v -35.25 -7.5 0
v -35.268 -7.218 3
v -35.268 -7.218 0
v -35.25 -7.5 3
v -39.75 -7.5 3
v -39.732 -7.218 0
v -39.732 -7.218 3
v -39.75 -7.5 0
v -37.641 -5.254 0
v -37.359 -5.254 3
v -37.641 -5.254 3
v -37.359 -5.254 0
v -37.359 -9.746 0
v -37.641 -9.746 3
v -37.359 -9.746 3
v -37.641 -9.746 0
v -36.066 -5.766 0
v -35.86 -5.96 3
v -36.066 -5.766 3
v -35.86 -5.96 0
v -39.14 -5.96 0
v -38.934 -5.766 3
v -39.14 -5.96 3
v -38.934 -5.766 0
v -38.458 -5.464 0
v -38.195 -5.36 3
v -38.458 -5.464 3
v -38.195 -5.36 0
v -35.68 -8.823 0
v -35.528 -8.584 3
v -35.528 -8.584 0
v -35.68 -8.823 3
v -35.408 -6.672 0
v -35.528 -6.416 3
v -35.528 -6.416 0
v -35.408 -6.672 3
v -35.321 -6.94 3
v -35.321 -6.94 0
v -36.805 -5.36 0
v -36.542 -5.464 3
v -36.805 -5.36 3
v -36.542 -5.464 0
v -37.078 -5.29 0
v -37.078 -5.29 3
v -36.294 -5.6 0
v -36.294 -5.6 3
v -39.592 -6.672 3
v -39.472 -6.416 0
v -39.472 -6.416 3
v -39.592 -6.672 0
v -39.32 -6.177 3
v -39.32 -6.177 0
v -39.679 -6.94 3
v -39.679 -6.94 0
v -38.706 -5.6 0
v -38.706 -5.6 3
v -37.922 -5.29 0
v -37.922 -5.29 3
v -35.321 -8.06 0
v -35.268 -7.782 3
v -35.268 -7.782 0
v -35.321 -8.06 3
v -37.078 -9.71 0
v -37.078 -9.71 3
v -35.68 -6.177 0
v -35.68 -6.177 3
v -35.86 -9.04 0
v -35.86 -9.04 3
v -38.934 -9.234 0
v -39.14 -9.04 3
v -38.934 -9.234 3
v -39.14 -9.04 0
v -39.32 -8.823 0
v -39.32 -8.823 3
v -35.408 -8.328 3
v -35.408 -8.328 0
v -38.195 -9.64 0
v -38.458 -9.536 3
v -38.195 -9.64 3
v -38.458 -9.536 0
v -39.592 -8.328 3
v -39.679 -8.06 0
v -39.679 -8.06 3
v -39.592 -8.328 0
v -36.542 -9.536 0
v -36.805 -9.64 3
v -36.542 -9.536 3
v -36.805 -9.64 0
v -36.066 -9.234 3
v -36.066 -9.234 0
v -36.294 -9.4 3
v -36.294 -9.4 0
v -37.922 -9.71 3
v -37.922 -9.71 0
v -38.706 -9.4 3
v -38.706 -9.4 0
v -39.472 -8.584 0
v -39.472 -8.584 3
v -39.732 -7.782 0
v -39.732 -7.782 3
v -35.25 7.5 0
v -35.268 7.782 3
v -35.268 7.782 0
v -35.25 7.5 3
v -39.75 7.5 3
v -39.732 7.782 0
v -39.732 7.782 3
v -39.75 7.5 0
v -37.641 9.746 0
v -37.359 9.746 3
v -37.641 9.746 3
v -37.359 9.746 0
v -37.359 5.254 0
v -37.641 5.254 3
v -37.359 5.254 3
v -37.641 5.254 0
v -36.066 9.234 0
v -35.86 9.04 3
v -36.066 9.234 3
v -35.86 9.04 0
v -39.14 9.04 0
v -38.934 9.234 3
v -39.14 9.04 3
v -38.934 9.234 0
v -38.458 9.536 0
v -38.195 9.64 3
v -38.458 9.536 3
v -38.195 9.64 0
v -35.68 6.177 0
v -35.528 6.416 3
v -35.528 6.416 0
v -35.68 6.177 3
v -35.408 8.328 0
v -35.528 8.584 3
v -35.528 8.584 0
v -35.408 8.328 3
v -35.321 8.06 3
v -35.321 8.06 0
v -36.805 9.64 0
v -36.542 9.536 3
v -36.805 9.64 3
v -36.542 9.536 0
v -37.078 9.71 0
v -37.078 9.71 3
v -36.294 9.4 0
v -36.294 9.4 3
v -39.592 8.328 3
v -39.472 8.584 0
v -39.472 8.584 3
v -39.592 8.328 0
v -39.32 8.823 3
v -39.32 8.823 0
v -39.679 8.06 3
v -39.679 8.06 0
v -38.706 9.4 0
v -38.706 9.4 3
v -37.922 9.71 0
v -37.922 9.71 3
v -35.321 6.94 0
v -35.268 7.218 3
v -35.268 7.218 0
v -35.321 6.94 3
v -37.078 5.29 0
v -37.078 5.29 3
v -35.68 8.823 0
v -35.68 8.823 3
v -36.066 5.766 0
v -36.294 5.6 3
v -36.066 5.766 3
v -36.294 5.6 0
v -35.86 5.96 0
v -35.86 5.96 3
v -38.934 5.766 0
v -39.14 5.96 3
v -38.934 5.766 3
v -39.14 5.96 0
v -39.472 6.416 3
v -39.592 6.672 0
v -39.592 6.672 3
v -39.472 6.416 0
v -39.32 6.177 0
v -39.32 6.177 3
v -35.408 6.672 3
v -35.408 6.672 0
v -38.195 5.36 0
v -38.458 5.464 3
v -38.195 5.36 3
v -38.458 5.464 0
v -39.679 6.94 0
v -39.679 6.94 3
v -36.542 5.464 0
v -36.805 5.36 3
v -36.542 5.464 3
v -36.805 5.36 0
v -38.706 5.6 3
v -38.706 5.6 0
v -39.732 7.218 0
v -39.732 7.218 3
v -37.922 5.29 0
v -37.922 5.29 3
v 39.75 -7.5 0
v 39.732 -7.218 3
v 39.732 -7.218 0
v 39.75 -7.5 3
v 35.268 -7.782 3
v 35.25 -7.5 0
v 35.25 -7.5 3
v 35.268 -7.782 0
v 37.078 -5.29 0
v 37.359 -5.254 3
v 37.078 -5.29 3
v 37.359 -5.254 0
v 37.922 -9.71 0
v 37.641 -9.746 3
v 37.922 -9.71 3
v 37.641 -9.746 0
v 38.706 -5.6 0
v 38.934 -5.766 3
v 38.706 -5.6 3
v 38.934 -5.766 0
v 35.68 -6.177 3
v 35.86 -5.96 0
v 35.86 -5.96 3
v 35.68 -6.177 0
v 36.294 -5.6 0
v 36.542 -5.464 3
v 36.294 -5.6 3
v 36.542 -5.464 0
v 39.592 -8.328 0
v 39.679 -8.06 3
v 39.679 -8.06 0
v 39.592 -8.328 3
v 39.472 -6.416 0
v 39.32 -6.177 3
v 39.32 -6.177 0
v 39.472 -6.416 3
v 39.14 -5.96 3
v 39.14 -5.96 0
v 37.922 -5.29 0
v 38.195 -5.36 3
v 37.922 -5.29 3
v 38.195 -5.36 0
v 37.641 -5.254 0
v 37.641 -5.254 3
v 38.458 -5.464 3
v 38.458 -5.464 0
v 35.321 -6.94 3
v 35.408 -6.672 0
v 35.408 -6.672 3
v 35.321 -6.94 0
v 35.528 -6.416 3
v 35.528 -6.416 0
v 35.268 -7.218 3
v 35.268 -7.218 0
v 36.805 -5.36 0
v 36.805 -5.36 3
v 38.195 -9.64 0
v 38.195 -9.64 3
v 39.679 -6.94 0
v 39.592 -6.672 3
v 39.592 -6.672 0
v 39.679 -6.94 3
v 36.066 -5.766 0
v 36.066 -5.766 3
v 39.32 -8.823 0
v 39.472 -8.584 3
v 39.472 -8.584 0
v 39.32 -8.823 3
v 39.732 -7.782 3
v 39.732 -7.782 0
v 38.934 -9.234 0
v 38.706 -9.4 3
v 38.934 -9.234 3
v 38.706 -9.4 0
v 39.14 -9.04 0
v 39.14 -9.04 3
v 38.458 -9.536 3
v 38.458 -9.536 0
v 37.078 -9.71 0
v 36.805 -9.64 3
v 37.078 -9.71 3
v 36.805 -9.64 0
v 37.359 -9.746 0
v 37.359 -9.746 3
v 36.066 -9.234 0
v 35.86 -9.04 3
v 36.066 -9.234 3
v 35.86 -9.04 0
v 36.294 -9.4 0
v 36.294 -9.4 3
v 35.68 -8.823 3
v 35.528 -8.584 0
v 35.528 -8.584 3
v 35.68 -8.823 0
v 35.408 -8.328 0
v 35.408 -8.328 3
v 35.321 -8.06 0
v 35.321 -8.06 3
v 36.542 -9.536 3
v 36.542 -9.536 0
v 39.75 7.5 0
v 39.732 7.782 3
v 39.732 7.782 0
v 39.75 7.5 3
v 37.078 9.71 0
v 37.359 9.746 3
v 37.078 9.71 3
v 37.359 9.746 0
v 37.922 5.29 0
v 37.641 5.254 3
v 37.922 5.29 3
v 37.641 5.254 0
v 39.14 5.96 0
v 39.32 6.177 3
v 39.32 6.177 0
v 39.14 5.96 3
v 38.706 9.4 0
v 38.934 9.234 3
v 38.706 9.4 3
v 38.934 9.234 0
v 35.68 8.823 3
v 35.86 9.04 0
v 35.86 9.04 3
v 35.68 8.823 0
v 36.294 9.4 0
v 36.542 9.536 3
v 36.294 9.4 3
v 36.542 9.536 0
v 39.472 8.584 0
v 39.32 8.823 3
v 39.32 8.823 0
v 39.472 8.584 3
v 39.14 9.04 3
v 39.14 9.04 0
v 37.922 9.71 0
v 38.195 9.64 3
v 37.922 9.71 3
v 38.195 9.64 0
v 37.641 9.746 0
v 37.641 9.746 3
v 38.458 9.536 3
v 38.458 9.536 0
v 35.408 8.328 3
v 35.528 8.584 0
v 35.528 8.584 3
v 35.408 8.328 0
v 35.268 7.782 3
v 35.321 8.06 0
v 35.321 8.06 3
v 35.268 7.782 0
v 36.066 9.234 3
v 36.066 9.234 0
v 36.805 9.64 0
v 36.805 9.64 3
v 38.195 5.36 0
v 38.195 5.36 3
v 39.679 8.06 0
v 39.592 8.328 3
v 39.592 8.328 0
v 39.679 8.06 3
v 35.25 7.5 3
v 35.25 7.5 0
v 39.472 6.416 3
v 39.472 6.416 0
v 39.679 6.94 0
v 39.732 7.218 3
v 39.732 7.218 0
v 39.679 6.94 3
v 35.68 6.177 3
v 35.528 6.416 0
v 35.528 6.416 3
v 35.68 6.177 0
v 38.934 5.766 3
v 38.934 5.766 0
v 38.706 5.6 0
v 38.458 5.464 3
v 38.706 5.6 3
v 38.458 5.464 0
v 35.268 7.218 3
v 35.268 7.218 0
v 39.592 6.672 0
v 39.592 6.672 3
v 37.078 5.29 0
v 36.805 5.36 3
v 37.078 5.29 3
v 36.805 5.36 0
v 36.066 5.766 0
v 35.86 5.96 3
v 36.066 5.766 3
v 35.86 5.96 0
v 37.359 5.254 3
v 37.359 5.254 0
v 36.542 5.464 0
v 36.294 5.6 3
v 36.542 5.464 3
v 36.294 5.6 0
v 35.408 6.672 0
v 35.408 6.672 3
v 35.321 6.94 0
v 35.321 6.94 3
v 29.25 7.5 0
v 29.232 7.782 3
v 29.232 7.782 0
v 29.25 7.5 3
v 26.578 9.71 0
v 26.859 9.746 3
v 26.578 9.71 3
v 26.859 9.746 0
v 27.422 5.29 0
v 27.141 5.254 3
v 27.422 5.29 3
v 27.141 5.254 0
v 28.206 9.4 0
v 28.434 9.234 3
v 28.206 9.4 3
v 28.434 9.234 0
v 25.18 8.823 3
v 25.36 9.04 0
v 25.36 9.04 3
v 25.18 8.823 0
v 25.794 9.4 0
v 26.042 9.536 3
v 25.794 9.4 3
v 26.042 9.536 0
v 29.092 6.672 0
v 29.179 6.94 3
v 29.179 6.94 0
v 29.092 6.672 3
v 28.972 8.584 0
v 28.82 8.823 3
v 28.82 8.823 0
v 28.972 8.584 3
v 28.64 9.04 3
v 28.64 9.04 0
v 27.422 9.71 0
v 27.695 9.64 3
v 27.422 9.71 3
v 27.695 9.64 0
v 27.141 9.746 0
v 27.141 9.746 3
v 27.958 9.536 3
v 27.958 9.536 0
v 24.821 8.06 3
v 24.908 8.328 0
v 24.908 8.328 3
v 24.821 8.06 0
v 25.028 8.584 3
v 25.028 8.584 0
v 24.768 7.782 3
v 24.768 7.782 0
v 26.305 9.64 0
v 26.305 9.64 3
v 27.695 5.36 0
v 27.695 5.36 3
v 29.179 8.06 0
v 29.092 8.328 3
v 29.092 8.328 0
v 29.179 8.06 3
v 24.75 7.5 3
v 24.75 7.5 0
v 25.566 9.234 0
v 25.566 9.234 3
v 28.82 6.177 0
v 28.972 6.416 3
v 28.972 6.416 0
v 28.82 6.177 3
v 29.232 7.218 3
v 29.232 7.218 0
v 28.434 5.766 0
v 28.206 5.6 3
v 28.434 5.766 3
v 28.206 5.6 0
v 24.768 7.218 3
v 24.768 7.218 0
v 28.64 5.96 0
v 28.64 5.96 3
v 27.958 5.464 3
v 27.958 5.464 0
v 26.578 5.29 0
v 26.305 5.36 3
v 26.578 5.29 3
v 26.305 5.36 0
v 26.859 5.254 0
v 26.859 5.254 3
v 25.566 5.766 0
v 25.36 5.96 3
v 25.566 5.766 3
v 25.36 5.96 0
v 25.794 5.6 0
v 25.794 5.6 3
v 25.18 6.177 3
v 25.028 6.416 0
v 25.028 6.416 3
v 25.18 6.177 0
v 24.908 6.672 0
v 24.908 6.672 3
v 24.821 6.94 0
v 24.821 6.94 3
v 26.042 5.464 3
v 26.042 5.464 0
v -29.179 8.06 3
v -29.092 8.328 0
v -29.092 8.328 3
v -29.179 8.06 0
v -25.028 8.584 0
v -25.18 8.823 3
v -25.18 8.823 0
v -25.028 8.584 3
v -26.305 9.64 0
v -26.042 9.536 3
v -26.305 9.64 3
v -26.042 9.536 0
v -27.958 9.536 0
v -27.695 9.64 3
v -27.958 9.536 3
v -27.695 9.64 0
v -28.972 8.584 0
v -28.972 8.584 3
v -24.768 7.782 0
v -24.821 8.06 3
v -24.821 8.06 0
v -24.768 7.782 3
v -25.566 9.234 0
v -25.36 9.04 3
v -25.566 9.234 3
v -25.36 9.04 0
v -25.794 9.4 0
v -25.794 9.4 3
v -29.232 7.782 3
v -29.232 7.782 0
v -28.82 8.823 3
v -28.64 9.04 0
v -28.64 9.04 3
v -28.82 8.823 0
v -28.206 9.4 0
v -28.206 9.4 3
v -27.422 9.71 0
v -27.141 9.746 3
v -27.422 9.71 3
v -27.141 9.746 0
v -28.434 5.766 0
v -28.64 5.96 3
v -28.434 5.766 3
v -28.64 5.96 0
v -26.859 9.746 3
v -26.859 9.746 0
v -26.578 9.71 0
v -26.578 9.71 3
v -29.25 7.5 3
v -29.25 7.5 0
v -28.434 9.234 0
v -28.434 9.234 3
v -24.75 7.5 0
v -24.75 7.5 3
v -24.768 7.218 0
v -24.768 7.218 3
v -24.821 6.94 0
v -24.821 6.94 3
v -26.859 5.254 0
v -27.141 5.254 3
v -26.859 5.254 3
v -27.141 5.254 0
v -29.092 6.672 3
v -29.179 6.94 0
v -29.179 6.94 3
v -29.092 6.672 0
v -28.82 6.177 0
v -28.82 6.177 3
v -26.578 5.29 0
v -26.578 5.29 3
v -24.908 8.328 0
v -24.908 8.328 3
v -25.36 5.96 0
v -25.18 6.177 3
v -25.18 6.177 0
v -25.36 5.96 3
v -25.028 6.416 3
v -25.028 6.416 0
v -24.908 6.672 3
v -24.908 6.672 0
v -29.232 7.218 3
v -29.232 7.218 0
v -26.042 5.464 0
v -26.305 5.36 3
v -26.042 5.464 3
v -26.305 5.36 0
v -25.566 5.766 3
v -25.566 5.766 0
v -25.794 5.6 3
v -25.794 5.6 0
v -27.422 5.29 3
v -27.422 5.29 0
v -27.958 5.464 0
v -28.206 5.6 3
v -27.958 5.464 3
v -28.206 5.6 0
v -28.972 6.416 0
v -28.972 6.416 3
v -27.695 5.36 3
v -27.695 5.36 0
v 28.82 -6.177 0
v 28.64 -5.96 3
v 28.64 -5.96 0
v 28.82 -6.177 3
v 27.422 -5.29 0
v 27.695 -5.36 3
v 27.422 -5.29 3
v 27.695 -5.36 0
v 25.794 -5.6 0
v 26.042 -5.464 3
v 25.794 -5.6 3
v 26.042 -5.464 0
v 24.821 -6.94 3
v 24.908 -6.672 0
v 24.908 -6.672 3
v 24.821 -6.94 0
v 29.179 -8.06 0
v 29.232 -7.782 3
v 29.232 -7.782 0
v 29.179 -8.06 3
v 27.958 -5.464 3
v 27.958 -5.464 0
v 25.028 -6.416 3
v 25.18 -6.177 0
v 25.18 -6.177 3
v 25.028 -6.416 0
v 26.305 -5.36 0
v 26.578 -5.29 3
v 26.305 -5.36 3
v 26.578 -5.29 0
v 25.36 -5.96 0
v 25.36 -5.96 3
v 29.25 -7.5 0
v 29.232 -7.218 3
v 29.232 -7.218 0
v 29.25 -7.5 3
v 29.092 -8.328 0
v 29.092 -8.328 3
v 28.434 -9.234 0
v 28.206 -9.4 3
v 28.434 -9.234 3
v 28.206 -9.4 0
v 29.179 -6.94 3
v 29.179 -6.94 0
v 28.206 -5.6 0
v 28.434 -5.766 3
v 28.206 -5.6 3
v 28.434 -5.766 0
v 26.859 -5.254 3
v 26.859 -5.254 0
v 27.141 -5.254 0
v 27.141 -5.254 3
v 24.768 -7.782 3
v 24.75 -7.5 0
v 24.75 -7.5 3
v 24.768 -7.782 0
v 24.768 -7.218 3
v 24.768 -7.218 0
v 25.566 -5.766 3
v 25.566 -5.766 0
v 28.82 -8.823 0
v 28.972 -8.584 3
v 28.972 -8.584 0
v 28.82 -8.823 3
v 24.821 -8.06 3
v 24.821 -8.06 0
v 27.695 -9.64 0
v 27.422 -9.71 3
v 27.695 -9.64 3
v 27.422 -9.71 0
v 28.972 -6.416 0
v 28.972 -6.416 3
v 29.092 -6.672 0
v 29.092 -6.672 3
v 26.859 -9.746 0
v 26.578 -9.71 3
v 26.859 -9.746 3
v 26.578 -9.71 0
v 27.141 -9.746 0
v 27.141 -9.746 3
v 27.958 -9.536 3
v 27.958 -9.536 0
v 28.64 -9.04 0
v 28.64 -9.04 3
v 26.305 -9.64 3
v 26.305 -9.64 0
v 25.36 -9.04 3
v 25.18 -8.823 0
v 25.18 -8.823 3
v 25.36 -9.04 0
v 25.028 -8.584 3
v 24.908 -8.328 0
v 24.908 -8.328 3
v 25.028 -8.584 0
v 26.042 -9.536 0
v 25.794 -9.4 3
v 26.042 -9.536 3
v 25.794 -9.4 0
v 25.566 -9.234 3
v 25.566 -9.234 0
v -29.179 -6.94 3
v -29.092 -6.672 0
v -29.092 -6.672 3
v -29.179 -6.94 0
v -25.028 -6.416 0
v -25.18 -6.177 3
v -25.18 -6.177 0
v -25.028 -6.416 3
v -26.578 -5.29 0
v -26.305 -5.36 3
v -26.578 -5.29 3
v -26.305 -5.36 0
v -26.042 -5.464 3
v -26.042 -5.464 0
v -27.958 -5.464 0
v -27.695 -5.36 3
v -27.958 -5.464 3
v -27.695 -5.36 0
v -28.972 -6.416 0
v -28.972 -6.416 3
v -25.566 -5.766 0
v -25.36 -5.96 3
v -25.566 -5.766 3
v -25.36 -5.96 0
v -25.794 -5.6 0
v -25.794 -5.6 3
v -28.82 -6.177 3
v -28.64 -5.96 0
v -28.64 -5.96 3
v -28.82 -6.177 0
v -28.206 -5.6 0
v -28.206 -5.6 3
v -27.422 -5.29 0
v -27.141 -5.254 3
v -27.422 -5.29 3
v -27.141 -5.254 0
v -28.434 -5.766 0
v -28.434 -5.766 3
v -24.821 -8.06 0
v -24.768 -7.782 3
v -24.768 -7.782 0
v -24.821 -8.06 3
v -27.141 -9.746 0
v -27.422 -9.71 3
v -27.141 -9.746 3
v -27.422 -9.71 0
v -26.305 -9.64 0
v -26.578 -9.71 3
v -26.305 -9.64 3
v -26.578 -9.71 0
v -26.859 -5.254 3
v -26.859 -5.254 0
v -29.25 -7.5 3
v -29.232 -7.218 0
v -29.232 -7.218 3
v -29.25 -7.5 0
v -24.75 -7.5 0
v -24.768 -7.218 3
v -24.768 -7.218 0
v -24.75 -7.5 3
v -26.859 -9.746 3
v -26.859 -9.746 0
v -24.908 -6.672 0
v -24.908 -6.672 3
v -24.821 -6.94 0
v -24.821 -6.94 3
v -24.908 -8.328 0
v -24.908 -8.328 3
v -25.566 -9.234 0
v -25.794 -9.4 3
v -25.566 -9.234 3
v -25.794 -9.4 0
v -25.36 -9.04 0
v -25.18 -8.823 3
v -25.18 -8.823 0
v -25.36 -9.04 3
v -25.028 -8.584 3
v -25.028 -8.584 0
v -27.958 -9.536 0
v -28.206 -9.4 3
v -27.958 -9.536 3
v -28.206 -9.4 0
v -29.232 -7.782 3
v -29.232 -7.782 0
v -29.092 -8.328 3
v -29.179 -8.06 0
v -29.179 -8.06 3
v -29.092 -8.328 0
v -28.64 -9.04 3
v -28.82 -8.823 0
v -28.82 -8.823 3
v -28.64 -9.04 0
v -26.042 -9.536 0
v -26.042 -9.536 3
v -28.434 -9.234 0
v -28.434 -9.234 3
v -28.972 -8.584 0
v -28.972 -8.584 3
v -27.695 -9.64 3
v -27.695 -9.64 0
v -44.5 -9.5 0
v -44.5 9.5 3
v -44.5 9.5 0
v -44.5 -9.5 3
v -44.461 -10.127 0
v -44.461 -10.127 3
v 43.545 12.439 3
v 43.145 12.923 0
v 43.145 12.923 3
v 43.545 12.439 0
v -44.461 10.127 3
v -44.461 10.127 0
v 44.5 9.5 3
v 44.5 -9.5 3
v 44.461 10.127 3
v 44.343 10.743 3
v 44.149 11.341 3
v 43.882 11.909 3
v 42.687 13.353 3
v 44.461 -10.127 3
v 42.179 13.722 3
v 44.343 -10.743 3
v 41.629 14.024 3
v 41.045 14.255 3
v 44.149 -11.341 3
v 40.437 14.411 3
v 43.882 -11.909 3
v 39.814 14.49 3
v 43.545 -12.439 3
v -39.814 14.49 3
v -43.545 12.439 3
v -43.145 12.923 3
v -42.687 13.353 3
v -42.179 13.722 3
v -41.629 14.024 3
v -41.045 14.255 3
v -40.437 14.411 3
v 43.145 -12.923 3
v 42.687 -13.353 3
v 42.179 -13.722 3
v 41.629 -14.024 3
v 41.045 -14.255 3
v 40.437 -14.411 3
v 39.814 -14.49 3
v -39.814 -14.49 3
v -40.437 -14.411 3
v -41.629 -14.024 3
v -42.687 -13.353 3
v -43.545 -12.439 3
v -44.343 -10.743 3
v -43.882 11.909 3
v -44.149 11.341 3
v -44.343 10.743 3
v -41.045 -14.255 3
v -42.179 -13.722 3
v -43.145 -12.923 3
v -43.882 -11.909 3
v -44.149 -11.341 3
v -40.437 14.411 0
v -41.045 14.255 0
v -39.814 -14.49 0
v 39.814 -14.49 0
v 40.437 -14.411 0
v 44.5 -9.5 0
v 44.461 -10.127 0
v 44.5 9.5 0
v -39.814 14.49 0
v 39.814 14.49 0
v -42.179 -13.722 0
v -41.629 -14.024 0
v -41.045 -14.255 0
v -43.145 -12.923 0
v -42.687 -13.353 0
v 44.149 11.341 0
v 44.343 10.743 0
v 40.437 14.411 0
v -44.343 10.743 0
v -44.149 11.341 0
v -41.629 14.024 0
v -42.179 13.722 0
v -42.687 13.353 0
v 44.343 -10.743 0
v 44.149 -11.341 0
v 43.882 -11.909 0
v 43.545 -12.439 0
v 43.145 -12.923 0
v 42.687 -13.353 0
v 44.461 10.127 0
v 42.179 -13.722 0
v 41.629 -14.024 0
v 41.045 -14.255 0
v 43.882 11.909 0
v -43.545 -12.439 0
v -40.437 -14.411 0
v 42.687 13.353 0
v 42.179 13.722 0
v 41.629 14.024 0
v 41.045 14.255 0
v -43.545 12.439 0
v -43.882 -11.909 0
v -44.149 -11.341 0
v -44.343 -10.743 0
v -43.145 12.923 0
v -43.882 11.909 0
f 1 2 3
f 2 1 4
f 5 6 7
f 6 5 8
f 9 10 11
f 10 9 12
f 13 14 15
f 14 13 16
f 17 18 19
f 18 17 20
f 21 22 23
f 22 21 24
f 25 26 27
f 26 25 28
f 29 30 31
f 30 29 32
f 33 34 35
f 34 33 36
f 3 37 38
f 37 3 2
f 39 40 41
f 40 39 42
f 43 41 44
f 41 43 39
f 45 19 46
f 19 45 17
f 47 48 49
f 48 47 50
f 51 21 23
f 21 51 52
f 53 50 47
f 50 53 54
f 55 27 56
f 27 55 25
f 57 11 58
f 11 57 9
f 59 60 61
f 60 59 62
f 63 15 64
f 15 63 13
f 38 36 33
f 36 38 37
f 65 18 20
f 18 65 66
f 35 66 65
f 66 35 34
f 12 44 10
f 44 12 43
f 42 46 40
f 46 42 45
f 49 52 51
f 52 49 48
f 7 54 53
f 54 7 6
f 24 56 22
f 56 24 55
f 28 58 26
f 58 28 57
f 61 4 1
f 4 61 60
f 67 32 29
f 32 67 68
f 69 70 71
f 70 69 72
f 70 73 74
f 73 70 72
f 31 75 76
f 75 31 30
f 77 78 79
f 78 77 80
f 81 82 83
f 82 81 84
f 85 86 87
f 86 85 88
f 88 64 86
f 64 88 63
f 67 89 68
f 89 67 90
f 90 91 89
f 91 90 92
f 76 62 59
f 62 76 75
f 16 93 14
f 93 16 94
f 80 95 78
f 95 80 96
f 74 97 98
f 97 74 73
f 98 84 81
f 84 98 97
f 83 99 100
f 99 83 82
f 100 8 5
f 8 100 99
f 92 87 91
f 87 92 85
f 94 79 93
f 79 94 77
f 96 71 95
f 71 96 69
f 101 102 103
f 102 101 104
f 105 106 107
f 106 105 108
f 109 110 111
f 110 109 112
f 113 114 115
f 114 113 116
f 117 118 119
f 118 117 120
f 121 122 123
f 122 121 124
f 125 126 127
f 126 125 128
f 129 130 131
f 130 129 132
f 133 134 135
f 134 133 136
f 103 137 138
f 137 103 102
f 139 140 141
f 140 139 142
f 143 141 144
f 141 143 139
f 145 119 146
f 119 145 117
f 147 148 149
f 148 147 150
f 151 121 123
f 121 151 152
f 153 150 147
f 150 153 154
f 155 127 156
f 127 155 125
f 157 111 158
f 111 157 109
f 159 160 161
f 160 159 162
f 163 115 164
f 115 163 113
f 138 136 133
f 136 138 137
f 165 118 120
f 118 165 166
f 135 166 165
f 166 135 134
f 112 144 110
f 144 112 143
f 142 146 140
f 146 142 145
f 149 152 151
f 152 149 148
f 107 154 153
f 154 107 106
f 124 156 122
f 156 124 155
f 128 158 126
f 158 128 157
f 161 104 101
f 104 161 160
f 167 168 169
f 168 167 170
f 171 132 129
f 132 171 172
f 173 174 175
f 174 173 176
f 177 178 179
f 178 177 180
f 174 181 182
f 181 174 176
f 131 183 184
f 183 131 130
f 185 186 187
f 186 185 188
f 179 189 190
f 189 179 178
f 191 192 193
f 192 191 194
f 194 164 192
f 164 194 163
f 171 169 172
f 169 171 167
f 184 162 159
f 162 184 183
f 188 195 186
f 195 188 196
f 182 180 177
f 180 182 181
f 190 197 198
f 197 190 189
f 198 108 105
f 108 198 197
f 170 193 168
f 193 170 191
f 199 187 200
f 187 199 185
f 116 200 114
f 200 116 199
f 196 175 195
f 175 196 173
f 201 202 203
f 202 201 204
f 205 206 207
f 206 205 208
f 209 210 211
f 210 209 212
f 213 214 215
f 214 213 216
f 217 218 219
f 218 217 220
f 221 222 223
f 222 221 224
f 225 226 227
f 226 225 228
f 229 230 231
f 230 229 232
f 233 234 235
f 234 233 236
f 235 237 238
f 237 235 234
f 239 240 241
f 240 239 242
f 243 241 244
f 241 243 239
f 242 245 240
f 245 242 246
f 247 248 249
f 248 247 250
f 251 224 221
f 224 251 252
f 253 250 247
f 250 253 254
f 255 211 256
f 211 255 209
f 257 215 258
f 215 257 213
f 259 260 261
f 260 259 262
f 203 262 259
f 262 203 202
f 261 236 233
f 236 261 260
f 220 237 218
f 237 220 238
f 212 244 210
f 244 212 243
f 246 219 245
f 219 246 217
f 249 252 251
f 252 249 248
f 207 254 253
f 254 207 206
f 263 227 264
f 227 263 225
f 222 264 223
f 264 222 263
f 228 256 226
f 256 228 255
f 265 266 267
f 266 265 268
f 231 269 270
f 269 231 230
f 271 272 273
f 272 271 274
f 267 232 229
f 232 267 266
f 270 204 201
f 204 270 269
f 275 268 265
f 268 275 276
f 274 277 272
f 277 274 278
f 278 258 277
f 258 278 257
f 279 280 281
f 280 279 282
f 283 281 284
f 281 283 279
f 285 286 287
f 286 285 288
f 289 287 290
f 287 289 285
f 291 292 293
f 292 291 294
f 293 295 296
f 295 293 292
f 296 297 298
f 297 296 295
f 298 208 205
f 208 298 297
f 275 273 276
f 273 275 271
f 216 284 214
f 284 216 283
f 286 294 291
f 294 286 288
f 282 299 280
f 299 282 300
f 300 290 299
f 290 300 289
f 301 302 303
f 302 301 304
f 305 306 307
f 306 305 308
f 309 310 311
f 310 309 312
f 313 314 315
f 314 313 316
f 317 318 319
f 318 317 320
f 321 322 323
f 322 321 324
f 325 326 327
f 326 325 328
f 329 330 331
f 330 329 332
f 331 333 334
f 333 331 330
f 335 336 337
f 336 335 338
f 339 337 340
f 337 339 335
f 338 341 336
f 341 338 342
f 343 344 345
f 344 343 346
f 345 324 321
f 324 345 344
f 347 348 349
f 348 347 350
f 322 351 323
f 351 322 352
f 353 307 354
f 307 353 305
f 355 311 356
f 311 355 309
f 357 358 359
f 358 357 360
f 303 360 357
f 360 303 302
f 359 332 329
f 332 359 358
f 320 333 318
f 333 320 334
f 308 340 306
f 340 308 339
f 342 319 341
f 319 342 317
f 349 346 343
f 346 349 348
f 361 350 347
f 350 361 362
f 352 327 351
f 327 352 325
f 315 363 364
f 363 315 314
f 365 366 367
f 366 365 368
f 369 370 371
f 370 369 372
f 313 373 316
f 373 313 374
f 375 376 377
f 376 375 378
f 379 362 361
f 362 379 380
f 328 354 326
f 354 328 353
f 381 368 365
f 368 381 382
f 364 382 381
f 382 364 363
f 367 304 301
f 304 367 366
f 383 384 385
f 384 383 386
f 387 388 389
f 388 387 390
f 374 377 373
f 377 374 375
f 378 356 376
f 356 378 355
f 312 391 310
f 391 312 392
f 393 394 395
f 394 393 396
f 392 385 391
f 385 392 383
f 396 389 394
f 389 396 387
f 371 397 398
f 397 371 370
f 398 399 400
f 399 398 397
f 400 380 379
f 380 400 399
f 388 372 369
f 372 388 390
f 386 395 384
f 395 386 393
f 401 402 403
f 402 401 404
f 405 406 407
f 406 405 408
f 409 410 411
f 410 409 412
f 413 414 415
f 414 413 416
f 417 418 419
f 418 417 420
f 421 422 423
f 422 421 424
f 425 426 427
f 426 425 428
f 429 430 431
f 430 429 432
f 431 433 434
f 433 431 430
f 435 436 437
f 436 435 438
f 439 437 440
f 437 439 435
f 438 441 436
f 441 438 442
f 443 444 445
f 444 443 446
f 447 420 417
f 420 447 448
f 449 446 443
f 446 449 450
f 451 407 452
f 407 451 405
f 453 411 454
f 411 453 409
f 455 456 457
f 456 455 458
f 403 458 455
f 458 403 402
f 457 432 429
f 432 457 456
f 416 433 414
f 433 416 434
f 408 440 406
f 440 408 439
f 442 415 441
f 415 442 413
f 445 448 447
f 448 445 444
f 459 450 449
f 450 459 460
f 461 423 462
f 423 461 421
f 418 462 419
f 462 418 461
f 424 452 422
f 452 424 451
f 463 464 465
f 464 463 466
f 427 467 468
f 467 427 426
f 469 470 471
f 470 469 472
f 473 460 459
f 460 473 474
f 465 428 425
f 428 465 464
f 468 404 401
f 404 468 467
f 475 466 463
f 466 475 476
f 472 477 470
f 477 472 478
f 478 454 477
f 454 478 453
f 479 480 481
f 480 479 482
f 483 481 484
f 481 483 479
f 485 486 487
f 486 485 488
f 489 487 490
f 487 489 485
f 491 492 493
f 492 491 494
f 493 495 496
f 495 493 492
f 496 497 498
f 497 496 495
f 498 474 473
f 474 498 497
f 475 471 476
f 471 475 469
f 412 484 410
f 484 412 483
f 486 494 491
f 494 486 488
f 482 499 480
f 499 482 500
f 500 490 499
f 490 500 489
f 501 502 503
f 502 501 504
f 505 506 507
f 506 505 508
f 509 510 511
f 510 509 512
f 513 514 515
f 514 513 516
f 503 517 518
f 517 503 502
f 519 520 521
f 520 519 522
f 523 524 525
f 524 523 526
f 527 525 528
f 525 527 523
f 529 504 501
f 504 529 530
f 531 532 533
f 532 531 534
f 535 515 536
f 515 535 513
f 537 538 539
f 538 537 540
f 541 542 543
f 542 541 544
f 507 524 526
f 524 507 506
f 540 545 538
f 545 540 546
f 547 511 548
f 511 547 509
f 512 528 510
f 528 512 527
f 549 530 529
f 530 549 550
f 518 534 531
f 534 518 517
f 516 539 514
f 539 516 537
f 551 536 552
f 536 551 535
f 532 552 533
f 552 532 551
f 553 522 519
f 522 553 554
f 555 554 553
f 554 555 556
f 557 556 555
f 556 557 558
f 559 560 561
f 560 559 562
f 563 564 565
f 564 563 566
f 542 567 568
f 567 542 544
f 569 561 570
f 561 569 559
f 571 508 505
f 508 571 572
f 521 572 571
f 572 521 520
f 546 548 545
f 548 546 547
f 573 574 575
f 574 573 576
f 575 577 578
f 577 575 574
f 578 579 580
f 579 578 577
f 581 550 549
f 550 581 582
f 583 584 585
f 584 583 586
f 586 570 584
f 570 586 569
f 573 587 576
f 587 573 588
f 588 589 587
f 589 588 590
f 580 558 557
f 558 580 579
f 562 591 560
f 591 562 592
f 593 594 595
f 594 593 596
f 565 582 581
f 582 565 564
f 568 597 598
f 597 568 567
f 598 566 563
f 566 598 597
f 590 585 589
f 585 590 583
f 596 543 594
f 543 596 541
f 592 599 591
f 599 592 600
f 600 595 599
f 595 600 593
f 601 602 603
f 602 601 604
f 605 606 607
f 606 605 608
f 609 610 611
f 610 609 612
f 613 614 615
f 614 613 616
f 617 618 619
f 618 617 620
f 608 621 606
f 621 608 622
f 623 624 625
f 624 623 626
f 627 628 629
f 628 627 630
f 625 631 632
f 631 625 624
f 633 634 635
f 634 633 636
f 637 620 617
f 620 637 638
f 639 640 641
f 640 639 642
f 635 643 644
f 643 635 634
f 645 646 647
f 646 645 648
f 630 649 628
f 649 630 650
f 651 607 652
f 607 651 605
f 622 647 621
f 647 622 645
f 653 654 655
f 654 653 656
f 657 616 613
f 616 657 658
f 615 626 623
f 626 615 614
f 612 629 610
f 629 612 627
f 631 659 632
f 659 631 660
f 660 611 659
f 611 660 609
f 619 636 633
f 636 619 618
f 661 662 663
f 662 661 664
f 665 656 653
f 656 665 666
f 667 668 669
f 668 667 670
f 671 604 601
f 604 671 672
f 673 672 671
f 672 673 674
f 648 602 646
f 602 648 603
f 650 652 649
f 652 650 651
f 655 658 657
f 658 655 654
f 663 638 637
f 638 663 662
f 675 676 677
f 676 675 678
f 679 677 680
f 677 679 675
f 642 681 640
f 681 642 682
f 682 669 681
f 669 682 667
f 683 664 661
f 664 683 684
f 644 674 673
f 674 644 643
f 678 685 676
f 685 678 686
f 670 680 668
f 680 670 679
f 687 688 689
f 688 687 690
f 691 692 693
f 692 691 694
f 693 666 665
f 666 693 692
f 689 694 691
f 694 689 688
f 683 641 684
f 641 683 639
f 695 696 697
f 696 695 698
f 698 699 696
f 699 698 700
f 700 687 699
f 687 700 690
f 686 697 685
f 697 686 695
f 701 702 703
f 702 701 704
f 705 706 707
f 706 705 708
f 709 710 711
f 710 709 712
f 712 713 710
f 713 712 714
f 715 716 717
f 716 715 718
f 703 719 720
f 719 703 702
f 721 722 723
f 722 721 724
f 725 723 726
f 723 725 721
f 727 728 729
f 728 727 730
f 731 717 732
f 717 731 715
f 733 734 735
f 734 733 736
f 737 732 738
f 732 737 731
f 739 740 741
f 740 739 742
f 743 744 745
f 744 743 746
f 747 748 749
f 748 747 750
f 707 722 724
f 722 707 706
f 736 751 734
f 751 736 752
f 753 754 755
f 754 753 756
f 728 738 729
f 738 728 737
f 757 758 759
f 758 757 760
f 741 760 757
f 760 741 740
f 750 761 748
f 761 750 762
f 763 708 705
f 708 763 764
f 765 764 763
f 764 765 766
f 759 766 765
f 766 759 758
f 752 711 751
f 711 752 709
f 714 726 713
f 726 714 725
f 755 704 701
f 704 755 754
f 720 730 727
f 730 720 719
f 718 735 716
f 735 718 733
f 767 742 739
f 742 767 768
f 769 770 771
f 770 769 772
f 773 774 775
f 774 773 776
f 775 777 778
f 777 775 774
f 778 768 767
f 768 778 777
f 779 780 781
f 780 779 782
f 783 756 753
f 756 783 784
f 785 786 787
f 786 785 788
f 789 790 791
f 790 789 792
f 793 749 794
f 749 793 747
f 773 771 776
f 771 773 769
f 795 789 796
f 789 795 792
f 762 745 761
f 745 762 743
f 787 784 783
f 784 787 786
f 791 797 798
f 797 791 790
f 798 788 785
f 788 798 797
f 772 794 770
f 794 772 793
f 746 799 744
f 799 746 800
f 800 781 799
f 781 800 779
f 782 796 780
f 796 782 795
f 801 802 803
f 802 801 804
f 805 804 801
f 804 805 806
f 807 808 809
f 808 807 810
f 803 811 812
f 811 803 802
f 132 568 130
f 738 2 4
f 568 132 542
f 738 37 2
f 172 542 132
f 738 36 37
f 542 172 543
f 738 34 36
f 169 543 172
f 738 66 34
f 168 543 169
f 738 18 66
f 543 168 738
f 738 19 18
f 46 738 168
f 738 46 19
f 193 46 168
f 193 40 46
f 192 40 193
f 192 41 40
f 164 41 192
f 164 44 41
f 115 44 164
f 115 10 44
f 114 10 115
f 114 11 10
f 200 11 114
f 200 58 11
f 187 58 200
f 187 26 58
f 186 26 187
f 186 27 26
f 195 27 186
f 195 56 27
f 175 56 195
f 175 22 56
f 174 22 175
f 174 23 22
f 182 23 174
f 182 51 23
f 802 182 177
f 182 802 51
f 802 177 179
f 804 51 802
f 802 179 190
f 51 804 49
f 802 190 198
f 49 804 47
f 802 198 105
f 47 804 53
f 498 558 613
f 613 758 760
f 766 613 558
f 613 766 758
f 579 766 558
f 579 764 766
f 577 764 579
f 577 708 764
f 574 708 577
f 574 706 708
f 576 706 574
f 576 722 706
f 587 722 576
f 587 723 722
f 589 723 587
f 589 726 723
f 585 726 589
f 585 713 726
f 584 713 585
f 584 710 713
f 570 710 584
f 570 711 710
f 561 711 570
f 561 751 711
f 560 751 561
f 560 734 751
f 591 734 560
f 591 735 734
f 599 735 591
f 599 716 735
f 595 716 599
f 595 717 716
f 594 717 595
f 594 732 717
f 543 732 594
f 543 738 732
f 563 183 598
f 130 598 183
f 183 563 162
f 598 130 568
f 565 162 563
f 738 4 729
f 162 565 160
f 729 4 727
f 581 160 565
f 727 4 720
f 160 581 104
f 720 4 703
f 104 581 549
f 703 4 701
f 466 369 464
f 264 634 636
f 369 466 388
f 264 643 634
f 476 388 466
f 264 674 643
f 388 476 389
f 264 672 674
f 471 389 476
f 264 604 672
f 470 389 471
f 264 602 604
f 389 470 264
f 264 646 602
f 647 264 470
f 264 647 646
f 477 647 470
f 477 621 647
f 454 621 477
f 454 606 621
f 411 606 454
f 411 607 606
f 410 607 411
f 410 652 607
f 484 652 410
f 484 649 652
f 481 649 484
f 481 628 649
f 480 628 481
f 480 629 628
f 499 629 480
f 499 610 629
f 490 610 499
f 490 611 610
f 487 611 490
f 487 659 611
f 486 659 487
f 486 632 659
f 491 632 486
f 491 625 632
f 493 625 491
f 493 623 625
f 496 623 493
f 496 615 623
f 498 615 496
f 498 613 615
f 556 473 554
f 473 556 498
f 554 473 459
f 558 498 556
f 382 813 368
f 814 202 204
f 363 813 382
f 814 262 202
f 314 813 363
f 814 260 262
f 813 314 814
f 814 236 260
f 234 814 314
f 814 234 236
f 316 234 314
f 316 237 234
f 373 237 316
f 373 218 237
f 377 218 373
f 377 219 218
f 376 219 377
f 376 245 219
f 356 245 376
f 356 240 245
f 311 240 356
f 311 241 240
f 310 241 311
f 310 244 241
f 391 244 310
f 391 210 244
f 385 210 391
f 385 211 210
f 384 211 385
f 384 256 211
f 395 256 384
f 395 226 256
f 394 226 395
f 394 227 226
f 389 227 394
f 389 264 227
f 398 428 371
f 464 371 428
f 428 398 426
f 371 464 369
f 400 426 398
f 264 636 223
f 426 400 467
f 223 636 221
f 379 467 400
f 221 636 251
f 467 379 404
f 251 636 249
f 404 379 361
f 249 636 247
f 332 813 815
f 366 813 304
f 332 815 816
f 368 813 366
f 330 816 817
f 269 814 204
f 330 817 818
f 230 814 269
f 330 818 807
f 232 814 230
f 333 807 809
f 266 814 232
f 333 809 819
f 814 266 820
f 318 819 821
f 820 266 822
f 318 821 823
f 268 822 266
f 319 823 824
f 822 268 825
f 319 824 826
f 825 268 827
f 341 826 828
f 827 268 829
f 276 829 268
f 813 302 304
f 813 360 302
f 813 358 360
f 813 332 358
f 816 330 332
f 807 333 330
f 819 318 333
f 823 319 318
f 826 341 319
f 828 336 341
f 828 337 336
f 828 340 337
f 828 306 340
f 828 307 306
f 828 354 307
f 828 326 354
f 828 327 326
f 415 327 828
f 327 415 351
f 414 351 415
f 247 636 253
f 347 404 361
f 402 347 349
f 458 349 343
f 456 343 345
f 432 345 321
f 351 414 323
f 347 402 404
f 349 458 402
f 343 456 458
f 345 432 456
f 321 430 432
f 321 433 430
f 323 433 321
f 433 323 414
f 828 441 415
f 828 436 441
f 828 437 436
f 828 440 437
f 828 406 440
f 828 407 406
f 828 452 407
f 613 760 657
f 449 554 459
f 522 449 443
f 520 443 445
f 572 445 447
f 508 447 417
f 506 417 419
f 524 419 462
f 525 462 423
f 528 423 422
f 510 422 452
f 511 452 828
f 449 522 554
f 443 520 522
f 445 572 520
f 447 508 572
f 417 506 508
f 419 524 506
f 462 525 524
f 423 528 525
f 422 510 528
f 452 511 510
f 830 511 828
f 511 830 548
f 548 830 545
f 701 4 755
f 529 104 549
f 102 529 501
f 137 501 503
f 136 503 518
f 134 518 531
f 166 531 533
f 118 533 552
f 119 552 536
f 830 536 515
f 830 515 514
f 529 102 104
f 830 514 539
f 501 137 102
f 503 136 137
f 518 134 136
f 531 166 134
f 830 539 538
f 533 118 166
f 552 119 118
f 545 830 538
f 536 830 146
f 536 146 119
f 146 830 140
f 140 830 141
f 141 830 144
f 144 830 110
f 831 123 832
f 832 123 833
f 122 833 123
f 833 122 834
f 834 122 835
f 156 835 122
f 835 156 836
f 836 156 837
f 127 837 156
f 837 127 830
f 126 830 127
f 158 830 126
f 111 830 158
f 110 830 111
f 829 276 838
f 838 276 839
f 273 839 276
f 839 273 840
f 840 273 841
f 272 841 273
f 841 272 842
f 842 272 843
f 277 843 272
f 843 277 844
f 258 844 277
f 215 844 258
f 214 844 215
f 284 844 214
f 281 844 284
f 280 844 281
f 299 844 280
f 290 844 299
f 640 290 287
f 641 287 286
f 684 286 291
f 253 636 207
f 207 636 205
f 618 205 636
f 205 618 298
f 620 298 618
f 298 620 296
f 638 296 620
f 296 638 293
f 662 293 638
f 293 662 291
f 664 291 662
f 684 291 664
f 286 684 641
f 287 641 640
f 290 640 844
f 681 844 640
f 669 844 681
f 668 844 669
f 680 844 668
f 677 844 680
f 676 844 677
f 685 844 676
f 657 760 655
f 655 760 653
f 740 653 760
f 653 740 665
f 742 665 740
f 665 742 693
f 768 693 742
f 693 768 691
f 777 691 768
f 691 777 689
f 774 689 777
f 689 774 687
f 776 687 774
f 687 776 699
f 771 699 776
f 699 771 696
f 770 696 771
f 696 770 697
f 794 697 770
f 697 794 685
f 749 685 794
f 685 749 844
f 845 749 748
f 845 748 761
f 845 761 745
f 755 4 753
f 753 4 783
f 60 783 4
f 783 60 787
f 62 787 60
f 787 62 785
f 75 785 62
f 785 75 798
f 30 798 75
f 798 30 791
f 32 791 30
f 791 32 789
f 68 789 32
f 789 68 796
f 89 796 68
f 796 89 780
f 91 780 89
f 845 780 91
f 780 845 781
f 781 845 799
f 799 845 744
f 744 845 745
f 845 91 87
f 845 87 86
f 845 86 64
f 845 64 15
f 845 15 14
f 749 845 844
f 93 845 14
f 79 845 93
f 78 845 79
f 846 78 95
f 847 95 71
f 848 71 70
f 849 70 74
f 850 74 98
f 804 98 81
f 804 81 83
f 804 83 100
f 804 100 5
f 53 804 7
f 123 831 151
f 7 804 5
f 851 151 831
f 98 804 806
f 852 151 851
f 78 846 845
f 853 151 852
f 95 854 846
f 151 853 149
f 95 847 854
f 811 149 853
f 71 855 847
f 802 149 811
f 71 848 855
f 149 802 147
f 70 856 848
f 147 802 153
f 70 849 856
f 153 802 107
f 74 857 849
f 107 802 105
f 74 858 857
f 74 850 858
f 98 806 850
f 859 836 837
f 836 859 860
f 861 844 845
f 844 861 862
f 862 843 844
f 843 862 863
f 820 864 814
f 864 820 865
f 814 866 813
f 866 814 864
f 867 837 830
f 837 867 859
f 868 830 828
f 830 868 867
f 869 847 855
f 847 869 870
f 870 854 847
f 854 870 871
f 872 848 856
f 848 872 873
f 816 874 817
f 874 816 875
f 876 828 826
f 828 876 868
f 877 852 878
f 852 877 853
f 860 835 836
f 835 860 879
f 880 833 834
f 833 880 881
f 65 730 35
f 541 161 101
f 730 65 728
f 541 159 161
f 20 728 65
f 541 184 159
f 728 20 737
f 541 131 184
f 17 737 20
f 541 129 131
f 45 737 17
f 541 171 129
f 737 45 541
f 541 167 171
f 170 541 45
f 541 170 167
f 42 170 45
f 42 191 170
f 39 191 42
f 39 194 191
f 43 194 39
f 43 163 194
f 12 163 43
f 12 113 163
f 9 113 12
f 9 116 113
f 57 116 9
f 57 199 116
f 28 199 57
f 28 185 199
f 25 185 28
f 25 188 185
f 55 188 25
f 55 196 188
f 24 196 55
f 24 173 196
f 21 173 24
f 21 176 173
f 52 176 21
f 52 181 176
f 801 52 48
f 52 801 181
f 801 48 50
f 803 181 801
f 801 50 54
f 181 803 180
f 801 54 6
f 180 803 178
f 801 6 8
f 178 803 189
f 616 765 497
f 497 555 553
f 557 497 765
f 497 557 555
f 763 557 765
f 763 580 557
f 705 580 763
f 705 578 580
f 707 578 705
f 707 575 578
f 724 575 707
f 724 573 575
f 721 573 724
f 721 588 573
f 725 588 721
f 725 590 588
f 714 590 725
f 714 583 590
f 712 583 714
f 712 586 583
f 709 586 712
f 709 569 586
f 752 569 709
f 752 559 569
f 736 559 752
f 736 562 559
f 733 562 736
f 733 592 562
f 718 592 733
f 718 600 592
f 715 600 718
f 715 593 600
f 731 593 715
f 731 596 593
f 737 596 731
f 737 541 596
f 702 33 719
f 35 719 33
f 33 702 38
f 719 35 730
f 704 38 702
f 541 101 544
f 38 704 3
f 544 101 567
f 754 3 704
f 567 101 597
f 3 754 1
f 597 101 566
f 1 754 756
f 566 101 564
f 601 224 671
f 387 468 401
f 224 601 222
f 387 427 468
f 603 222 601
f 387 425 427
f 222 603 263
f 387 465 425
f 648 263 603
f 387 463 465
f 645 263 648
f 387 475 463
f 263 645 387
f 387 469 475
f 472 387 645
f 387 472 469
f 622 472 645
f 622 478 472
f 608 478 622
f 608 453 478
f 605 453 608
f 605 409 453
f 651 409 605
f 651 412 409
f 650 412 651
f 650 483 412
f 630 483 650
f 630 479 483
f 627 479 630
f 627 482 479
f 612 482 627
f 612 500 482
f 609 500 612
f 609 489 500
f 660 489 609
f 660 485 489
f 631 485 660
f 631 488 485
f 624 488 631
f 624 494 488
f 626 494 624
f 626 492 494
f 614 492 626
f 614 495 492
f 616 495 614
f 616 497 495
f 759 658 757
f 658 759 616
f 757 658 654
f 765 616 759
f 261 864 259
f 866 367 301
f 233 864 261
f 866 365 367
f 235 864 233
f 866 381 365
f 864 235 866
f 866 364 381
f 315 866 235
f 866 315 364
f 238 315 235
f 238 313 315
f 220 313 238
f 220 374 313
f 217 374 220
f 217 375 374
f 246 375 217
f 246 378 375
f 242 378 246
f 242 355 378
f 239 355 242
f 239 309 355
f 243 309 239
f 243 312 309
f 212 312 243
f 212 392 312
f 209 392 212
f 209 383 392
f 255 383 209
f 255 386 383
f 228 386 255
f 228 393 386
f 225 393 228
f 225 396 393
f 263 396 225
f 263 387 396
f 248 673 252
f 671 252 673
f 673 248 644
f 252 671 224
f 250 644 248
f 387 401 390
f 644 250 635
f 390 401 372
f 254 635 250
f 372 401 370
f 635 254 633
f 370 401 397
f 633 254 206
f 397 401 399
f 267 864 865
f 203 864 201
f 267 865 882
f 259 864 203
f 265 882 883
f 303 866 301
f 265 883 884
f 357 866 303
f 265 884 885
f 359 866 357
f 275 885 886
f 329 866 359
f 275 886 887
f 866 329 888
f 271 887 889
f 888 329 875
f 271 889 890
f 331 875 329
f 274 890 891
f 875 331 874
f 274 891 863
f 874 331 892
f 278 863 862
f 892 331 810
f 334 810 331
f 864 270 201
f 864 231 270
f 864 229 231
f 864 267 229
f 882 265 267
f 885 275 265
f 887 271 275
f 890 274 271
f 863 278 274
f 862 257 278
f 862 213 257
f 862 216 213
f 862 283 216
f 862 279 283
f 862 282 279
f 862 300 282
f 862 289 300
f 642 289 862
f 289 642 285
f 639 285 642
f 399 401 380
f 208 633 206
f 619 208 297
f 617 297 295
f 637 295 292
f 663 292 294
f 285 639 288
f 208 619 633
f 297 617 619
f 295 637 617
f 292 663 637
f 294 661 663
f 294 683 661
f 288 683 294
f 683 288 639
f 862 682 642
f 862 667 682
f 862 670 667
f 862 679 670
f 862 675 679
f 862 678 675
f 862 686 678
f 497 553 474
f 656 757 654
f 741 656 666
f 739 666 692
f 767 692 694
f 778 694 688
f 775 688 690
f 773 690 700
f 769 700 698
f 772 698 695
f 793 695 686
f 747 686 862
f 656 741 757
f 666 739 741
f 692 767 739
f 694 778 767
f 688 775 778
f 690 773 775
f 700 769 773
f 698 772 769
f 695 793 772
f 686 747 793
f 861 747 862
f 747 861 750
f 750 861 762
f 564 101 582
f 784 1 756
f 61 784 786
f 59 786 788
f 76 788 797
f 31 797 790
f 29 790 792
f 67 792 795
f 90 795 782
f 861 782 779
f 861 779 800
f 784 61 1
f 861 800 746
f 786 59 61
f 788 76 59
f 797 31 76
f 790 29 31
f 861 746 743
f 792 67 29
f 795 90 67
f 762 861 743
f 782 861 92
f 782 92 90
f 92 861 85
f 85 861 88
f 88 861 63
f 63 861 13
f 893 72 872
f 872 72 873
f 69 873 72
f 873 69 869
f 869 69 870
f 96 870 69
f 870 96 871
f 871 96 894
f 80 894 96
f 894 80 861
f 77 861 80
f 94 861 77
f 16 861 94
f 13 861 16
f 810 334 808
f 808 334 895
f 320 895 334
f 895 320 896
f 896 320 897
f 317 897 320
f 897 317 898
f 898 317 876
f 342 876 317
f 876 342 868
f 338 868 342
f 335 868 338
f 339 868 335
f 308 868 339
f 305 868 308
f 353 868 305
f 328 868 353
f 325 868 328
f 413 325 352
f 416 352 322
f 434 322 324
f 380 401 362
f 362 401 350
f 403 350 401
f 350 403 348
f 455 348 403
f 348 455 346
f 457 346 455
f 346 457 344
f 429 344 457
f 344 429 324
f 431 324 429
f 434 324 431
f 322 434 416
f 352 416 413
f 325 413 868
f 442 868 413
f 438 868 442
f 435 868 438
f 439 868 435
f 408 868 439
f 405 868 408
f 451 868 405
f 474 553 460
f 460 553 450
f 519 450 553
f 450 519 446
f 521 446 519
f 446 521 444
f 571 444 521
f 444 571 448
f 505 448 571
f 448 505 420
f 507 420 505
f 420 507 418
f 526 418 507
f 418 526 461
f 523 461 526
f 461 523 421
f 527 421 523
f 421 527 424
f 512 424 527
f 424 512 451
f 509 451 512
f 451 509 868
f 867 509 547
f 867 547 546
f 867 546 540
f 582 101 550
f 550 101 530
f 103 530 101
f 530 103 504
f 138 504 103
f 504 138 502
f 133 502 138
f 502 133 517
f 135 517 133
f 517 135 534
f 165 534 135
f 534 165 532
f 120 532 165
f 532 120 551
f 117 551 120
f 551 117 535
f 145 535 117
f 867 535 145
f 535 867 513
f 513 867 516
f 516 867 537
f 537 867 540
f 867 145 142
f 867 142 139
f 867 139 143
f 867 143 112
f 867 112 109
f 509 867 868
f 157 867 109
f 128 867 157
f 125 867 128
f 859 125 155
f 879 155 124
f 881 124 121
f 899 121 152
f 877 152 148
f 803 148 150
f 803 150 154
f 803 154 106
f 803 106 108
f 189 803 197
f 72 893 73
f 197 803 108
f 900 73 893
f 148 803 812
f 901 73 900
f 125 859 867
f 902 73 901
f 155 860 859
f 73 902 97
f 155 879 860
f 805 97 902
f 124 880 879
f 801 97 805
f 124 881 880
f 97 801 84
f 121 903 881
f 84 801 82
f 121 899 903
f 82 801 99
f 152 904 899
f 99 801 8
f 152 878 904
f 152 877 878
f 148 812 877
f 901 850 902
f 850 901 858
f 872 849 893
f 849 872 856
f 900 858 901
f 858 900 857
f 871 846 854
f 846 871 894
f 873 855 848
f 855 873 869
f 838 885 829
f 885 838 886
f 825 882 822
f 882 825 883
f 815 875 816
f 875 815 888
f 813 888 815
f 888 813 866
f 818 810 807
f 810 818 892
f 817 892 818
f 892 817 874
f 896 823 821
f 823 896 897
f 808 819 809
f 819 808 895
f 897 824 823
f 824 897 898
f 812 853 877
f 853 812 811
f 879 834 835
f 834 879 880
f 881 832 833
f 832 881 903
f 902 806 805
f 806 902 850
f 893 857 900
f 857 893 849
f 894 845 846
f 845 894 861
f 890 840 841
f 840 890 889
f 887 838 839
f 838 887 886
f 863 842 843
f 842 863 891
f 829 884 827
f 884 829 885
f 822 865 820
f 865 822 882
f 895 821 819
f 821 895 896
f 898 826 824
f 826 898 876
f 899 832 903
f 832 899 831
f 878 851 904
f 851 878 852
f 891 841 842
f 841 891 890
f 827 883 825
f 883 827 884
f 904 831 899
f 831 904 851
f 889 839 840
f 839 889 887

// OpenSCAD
$fn = 50;


difference() {
	union() {
		translate(v = [0, 0, 0]) {
			rotate(a = [0, 0, 0]) {
				hull() {
					translate(v = [-39.5000000000, 9.5000000000, 0]) {
						rotate(a = [0, 0, 0]) {
							translate(v = [0, 0, 0]) {
								rotate(a = [0, 0, 0]) {
									cylinder(h = 3, r = 5);
								}
							}
						}
					}
					translate(v = [39.5000000000, 9.5000000000, 0]) {
						rotate(a = [0, 0, 0]) {
							translate(v = [0, 0, 0]) {
								rotate(a = [0, 0, 0]) {
									cylinder(h = 3, r = 5);
								}
							}
						}
					}
					translate(v = [-39.5000000000, -9.5000000000, 0]) {
						rotate(a = [0, 0, 0]) {
							translate(v = [0, 0, 0]) {
								rotate(a = [0, 0, 0]) {
									cylinder(h = 3, r = 5);
								}
							}
						}
					}
					translate(v = [39.5000000000, -9.5000000000, 0]) {
						rotate(a = [0, 0, 0]) {
							translate(v = [0, 0, 0]) {
								rotate(a = [0, 0, 0]) {
									cylinder(h = 3, r = 5);
								}
							}
						}
					}
				}
			}
		}
	}
	union() {
		translate(v = [-37.5000000000, -7.5000000000, -125.0000000000]) {
			rotate(a = [0, 0, 0]) {
				cylinder(h = 250, r = 2.2500000000);
			}
		}
		translate(v = [-37.5000000000, 7.5000000000, -125.0000000000]) {
			rotate(a = [0, 0, 0]) {
				cylinder(h = 250, r = 2.2500000000);
			}
		}
		translate(v = [37.5000000000, -7.5000000000, -125.0000000000]) {
			rotate(a = [0, 0, 0]) {
				cylinder(h = 250, r = 2.2500000000);
			}
		}
		translate(v = [37.5000000000, 7.5000000000, -125.0000000000]) {
			rotate(a = [0, 0, 0]) {
				cylinder(h = 250, r = 2.2500000000);
			}
		}
		translate(v = [37.5000000000, -7.5000000000, -125.0000000000]) {
			rotate(a = [0, 0, 0]) {
				cylinder(h = 250, r = 2.2500000000);
			}
		}
		translate(v = [37.5000000000, 7.5000000000, -125.0000000000]) {
			rotate(a = [0, 0, 0]) {
				cylinder(h = 250, r = 2.2500000000);
			}
		}
		translate(v = [27.0000000000, 7.5000000000, -125.0000000000]) {
			rotate(a = [0, 0, 0]) {
				cylinder(h = 250, r = 2.2500000000);
			}
		}
		translate(v = [-27.0000000000, 7.5000000000, -125.0000000000]) {
			rotate(a = [0, 0, 0]) {
				cylinder(h = 250, r = 2.2500000000);
			}
		}
		translate(v = [27.0000000000, -7.5000000000, -125.0000000000]) {
			rotate(a = [0, 0, 0]) {
				cylinder(h = 250, r = 2.2500000000);
			}
		}
		translate(v = [-27.0000000000, -7.5000000000, -125.0000000000]) {
			rotate(a = [0, 0, 0]) {
				cylinder(h = 250, r = 2.2500000000);
			}
		}
	}
}
